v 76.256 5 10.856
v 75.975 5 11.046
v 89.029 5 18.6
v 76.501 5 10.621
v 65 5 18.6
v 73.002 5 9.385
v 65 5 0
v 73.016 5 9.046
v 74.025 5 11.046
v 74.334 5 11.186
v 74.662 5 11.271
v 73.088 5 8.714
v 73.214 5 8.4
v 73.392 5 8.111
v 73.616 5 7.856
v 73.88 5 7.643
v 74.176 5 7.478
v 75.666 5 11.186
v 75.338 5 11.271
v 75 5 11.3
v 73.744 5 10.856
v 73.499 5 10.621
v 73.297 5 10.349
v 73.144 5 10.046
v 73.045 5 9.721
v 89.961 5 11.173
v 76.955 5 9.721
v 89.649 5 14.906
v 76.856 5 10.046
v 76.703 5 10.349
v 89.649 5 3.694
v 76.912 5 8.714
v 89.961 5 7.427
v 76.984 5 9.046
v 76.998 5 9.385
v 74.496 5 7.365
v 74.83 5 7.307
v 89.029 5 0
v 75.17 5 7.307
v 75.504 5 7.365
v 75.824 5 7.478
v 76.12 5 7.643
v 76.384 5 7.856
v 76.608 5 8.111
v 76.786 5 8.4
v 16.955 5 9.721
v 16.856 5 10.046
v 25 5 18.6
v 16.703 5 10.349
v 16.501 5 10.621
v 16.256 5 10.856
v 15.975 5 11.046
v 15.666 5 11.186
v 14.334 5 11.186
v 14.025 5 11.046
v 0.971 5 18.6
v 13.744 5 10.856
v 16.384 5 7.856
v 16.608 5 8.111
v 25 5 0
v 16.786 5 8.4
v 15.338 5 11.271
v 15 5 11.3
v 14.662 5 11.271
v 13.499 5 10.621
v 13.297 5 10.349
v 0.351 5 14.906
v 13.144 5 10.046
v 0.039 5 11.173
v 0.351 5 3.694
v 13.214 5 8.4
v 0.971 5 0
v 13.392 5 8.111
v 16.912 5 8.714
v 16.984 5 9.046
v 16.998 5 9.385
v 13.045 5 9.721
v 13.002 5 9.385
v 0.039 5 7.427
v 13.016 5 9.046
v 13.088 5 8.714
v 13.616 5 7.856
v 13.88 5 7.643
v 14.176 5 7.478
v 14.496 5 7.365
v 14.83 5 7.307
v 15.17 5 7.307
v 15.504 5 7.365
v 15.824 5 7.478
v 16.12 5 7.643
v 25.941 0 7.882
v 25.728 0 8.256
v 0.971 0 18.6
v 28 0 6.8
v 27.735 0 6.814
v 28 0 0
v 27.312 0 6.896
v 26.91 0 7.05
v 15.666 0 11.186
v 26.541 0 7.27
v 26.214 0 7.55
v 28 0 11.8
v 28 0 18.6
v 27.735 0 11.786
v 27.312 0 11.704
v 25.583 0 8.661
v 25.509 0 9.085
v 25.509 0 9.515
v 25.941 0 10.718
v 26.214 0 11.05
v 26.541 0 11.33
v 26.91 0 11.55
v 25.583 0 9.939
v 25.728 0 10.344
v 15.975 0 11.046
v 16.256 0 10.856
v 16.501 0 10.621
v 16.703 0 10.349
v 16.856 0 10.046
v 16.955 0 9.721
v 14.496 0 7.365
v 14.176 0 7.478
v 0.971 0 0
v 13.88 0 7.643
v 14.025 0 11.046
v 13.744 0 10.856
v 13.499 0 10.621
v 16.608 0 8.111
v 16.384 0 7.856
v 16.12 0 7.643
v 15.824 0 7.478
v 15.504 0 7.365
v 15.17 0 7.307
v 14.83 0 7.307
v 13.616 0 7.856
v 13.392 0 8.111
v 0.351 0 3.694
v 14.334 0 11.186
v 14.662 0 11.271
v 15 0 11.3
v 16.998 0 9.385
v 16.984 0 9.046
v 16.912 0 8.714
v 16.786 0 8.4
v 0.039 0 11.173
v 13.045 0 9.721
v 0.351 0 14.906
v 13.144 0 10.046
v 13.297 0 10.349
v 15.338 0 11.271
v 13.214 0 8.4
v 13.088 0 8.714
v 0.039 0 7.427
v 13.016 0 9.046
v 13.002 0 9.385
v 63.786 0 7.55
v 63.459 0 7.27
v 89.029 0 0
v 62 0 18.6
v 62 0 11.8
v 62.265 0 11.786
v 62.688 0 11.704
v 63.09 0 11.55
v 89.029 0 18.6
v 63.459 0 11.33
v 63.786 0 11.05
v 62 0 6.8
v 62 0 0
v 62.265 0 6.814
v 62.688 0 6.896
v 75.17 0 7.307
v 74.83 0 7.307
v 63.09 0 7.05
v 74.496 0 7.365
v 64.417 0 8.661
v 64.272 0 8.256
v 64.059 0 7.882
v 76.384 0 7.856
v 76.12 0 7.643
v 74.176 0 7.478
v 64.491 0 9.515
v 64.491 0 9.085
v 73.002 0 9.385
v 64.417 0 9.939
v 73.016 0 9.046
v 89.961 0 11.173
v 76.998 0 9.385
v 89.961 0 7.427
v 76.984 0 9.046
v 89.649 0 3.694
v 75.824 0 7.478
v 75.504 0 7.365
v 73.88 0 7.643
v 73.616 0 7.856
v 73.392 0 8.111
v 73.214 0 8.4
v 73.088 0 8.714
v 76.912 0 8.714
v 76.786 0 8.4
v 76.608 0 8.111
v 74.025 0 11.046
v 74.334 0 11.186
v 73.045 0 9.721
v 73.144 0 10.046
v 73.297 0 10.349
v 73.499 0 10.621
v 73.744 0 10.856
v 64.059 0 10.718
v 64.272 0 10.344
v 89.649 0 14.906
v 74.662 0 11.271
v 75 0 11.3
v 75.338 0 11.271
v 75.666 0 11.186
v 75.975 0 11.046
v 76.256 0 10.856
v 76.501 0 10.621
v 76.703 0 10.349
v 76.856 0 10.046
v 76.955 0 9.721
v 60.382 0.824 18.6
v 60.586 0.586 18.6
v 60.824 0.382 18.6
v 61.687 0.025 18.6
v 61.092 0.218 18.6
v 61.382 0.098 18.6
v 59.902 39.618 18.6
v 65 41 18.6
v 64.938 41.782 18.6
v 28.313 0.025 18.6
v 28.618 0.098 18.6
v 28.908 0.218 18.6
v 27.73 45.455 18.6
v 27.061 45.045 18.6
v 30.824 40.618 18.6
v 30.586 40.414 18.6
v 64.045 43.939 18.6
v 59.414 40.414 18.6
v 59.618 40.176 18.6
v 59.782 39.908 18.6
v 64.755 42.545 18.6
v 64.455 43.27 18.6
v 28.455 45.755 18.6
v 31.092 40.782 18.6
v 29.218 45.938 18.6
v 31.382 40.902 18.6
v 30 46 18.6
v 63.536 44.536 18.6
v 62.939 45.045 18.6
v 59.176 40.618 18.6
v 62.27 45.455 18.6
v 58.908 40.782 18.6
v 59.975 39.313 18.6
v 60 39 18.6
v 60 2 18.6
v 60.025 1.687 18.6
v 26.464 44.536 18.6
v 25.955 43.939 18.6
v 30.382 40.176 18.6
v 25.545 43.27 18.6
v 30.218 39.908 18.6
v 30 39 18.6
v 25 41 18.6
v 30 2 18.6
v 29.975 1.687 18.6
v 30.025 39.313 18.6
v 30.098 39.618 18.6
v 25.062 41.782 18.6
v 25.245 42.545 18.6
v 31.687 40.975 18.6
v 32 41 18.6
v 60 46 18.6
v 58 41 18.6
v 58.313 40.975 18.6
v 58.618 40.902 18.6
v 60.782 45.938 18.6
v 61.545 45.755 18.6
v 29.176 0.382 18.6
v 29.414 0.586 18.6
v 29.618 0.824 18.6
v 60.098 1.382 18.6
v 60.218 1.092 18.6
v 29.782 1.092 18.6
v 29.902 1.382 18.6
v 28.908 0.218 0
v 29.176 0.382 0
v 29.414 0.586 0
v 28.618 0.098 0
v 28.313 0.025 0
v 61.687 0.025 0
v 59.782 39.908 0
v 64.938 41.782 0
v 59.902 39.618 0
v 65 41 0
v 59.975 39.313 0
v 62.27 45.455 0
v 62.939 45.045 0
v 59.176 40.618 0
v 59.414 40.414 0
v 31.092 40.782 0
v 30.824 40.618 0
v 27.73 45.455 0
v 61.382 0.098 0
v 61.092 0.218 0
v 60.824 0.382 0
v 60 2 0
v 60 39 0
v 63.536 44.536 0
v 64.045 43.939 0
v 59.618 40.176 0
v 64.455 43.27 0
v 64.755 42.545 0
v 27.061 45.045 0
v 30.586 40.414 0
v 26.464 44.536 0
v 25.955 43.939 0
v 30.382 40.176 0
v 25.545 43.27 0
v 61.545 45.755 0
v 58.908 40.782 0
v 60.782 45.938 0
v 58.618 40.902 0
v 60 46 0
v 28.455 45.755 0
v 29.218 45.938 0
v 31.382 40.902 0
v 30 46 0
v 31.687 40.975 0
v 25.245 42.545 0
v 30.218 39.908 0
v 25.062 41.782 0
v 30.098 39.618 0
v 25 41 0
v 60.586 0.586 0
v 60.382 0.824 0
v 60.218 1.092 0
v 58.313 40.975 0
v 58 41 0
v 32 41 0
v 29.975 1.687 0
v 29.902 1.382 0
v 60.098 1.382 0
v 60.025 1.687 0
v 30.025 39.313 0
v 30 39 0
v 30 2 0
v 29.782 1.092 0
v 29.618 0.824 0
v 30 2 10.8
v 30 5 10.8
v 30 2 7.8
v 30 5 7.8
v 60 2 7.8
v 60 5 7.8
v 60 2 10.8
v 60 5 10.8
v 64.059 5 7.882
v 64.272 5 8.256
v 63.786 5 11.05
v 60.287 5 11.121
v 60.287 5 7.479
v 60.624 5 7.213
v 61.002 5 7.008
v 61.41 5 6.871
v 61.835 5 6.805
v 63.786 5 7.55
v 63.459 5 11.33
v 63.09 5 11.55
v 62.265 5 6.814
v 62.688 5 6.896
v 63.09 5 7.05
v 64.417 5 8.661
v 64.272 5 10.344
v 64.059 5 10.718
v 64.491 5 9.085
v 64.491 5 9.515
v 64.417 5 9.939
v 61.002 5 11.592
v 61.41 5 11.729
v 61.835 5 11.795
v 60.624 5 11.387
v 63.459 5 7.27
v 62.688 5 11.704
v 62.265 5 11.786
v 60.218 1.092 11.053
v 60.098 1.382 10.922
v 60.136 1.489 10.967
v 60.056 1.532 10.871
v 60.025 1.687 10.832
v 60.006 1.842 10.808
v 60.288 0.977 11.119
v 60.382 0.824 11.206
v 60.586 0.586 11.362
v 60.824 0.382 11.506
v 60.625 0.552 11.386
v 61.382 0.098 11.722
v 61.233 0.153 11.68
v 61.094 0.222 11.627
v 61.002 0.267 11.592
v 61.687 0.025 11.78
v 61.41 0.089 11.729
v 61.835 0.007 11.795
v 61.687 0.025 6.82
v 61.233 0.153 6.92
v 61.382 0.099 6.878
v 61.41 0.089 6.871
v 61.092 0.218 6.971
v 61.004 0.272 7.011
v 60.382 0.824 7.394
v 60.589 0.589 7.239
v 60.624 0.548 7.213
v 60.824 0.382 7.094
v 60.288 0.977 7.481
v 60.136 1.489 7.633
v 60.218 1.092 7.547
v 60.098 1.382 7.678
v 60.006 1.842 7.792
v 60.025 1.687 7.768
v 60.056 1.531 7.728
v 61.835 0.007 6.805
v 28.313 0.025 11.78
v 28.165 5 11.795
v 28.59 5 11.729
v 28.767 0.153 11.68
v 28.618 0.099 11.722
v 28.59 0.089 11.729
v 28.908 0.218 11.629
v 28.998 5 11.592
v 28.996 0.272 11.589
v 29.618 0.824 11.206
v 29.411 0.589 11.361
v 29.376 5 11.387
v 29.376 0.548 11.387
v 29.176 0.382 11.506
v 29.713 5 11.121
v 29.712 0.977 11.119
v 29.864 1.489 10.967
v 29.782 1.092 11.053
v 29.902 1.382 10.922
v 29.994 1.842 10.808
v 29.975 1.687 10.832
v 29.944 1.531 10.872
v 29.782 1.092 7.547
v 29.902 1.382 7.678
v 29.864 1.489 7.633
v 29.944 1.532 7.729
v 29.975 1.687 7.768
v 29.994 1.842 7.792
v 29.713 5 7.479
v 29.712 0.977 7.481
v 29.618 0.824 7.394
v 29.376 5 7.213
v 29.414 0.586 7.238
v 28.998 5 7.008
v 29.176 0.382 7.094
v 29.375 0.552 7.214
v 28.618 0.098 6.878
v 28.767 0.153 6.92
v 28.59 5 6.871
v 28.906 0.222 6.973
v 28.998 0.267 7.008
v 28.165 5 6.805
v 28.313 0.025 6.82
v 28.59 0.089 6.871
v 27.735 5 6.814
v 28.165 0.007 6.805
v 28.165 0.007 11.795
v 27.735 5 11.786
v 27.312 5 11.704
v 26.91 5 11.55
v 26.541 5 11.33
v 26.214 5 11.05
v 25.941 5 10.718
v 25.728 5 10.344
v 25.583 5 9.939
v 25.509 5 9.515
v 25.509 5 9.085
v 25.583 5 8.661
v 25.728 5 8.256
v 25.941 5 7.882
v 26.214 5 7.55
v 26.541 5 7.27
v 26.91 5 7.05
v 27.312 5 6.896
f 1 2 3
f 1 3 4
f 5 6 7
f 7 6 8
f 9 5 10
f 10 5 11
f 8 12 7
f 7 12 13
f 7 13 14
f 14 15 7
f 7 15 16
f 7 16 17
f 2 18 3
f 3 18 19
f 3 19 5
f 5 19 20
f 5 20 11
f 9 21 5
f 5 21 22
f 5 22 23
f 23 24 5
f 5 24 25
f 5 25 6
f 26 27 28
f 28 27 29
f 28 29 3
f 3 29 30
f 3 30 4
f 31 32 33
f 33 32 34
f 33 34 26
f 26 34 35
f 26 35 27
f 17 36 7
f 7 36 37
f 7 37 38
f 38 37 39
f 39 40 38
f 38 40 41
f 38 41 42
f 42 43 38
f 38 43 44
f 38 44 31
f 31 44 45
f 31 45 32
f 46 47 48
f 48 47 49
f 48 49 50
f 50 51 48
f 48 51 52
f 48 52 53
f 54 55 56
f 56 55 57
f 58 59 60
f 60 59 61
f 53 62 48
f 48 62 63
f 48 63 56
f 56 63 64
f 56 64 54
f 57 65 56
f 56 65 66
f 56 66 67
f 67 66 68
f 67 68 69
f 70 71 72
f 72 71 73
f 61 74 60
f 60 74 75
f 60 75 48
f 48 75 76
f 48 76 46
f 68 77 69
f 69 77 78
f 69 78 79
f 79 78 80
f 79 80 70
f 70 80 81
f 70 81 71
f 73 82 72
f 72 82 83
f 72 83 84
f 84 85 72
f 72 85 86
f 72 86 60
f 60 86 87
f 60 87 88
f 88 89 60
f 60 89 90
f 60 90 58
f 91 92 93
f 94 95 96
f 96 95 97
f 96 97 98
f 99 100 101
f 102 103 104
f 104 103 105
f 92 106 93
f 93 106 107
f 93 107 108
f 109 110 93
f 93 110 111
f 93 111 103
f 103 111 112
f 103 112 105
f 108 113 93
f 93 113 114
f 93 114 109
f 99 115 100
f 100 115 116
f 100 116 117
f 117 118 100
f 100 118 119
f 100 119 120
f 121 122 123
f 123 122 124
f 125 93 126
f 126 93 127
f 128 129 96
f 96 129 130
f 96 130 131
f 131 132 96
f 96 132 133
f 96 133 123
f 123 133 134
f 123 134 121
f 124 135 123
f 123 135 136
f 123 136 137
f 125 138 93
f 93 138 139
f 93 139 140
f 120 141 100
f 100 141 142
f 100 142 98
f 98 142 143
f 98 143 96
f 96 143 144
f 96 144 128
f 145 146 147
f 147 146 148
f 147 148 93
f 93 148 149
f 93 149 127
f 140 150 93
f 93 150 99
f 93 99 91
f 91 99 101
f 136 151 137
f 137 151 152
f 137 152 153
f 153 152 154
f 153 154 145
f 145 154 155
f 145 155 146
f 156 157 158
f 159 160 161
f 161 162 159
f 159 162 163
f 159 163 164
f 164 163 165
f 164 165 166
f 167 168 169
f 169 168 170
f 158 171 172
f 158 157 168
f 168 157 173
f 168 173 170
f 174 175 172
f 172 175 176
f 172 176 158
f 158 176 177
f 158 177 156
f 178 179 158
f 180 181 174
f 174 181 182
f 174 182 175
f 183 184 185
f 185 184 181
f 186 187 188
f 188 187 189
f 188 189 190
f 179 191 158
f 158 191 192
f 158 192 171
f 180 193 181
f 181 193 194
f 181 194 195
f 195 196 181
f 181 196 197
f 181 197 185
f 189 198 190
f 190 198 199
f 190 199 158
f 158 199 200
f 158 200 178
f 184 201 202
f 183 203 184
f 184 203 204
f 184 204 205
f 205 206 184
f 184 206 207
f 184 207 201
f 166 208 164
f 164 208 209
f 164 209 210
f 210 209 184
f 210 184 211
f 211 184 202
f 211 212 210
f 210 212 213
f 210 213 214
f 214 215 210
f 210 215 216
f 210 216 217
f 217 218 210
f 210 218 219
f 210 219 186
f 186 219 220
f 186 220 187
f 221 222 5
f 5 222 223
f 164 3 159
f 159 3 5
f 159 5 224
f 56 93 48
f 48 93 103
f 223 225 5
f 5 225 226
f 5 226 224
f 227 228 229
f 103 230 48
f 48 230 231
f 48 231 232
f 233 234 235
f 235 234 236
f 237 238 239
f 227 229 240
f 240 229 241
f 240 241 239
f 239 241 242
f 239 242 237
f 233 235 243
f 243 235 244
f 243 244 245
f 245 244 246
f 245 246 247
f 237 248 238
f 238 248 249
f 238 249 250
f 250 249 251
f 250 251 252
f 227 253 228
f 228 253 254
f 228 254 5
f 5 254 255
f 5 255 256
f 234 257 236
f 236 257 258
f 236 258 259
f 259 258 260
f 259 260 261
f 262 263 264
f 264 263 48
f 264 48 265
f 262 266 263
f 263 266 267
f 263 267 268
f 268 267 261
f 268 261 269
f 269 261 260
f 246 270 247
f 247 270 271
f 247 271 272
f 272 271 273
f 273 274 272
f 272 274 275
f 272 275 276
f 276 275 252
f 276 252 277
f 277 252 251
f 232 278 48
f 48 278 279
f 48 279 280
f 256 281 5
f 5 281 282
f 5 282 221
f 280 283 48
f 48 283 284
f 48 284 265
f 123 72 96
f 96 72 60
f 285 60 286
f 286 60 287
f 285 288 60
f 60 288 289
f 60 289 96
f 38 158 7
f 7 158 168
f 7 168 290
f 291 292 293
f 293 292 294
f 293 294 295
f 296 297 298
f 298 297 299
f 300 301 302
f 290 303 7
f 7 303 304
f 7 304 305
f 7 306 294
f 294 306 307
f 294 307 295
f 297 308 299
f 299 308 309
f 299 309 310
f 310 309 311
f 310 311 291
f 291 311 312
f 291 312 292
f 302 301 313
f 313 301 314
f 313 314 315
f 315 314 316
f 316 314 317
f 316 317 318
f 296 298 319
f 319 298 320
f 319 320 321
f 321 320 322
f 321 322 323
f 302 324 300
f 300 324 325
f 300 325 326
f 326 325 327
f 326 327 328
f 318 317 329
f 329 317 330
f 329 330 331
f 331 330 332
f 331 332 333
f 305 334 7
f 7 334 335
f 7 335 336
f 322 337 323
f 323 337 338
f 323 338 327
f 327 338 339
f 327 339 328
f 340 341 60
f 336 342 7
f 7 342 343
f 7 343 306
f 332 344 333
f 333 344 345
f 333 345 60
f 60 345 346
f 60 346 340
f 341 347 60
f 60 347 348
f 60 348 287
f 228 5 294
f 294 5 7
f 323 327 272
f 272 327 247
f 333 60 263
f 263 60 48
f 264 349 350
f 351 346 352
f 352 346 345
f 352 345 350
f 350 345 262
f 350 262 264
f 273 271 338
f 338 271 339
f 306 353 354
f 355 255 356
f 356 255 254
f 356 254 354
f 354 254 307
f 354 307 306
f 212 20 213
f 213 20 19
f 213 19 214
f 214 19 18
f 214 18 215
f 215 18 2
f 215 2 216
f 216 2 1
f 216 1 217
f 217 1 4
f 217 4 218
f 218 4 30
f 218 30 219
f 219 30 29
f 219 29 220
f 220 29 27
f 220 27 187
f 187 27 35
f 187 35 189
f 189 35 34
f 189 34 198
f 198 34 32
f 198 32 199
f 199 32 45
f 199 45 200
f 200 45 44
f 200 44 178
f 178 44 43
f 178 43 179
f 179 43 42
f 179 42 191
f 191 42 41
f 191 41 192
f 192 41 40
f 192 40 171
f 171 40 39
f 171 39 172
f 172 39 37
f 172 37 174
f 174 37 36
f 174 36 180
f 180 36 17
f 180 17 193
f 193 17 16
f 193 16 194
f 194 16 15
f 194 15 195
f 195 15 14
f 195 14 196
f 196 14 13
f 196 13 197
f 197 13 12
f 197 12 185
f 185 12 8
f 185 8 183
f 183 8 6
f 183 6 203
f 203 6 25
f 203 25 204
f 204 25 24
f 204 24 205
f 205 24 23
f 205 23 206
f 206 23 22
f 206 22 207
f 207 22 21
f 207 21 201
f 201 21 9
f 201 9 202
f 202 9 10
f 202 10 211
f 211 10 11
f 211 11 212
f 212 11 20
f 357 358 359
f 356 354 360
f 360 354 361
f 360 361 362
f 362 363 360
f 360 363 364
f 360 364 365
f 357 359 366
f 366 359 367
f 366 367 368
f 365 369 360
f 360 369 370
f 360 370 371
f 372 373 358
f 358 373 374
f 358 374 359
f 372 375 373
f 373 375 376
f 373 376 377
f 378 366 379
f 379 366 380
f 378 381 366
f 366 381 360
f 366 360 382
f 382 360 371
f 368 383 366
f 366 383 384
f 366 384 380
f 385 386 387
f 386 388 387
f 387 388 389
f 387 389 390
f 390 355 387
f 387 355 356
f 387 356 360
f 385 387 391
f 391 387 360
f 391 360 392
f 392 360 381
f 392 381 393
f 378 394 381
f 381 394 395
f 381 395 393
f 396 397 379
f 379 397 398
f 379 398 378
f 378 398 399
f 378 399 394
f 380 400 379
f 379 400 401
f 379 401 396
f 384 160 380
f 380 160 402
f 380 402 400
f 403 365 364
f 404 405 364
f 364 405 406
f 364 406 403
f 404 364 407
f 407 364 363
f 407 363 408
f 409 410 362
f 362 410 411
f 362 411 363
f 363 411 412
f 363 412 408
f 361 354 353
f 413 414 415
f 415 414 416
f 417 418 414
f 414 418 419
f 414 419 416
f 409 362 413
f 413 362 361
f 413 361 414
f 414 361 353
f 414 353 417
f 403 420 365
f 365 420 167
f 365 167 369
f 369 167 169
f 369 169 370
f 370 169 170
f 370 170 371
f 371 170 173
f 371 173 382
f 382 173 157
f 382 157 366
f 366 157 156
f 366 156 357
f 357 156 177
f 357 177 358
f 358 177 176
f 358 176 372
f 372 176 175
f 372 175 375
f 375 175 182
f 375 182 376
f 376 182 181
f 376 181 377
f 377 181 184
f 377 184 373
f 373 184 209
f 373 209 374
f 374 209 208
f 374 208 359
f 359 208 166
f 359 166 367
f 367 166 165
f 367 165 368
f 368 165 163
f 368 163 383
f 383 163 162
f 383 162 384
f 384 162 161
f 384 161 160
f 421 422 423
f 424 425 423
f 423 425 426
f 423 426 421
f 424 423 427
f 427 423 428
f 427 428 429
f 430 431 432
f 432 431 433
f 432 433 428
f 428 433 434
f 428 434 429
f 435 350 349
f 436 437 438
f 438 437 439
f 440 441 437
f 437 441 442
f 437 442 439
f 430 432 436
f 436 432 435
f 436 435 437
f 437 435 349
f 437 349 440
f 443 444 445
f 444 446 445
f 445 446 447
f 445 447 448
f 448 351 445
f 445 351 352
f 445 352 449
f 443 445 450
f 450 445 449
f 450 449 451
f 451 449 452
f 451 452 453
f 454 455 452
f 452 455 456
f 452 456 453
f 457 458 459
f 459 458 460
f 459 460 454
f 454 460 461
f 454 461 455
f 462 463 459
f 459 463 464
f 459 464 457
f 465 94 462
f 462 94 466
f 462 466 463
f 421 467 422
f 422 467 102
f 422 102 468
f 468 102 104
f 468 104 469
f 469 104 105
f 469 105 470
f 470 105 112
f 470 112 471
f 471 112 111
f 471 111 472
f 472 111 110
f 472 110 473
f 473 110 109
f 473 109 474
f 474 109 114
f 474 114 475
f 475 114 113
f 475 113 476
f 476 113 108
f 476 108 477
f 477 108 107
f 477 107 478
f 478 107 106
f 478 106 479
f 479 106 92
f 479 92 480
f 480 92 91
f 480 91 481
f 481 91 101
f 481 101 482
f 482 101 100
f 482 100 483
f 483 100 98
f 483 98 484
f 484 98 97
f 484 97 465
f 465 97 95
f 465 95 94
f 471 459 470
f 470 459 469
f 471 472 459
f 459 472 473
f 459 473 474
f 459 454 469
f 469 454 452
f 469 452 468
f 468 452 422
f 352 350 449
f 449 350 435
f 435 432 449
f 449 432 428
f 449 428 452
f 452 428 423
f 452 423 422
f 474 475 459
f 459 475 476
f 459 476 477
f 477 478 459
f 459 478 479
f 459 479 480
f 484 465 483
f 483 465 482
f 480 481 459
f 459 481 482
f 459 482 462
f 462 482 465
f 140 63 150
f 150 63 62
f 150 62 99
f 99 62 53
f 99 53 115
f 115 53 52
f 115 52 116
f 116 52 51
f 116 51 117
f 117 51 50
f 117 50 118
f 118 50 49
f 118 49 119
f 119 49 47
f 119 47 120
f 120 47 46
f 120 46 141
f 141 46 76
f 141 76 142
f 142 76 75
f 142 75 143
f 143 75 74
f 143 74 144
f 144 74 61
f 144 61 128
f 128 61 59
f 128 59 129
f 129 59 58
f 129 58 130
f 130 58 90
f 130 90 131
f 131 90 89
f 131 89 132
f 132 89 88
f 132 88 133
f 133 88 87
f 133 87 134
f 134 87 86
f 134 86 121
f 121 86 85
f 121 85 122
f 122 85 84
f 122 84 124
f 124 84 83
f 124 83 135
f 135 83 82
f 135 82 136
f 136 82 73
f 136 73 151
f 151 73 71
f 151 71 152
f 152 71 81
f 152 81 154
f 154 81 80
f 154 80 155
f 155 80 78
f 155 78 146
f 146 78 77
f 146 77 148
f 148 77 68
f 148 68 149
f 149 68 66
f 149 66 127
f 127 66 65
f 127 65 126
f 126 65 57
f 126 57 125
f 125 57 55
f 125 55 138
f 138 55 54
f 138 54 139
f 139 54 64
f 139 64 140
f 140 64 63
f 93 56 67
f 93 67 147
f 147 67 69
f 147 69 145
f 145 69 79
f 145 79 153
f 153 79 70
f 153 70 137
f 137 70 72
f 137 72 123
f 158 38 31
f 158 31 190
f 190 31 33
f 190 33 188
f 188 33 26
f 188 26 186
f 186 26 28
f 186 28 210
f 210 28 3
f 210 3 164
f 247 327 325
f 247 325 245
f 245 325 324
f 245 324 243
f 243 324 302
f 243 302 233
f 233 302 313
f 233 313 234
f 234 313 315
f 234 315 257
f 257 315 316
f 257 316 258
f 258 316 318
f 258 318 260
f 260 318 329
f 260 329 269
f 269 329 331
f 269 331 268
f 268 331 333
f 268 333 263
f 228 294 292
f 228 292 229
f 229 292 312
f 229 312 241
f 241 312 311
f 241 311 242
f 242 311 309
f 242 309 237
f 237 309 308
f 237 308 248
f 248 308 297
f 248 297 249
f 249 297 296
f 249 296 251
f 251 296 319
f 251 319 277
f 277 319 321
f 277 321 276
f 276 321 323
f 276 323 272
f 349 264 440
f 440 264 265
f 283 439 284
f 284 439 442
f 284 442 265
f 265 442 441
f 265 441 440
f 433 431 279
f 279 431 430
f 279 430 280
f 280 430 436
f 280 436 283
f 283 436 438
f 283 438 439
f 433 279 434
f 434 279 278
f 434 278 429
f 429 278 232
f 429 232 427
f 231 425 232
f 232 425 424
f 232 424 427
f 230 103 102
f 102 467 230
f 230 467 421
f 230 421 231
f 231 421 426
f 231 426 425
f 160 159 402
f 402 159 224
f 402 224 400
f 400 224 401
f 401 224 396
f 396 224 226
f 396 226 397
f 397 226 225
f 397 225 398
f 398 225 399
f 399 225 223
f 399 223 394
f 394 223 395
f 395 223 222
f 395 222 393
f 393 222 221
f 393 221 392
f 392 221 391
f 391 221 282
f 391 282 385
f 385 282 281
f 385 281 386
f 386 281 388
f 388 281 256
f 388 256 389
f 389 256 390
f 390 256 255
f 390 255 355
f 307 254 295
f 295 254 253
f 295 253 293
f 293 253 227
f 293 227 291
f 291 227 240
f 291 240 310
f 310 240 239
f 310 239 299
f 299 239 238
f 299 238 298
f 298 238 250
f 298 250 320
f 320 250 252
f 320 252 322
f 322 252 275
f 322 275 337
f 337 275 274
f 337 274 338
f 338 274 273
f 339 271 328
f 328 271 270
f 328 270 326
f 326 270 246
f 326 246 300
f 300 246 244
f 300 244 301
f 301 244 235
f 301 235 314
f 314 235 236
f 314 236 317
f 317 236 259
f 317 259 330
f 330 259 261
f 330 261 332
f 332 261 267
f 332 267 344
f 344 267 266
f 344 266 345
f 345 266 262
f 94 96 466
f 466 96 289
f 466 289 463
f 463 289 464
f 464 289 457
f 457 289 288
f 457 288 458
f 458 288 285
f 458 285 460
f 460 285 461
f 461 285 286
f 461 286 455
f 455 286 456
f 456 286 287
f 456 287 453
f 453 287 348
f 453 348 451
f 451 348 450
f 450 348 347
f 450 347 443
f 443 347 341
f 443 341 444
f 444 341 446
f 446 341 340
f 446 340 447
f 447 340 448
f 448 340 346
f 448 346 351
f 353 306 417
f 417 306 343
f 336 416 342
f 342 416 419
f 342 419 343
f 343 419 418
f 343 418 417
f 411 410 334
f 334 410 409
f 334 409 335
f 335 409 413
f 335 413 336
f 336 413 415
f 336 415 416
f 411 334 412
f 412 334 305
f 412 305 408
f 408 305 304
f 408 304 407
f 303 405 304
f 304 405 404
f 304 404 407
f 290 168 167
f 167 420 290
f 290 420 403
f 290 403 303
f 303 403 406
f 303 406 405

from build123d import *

# Parameters (mm, degrees)
BOSS_EXTRUDE1_DEPTH = 18.6
SKETCH2_R           = 2
SKETCH2_R_2         = 2.5
CUT_EXTRUDE1_DEPTH  = 10
SKETCH3_R           = 50
SKETCH3_R_2         = 45
CUT_EXTRUDE2_DEPTH  = 60
FILLET1_R           = 5
FILLET2_R           = 5
FILLET3_R           = 2
FILLET4_R           = 2


with BuildPart() as part:
    # Sketch1 → Boss-Extrude1 (new body)
    with BuildSketch(Plane.XY):
        Polygon((90, 5), (90, 0), (60, 0), (60, 41), (30, 41), (30, 0), (0, 0), (0, 5), (25, 5), (25, 46), (65, 46), (65, 5), align=None)
    extrude(amount=BOSS_EXTRUDE1_DEPTH)

    # Sketch2 → Cut-Extrude1 (cut)
    with BuildSketch(Plane(origin=(0, 5, 0), x_dir=(1, 0, 0), z_dir=(0, 1, 0))):
        with Locations((75, -9.3)):
            Circle(SKETCH2_R)
        with Locations((15, -9.3)):
            Circle(SKETCH2_R)
        with Locations((28, -9.3)):
            Circle(SKETCH2_R_2)
        with Locations((62, -9.3)):
            Circle(SKETCH2_R_2)
    extrude(amount=-CUT_EXTRUDE1_DEPTH, mode=Mode.SUBTRACT)

    # Sketch3 → Cut-Extrude2 (cut)
    with BuildSketch(Plane(origin=(0, 46, 0), x_dir=(1, 0, 0), z_dir=(0, 1, 0))):
        with Locations((45, -9.3)):
            Circle(SKETCH3_R)
        with Locations((45, -9.3)):
            Circle(SKETCH3_R_2, mode=Mode.SUBTRACT)
    extrude(amount=-CUT_EXTRUDE2_DEPTH, mode=Mode.SUBTRACT)

    # Fillet1
    fillet1_edges = [part.edges().sort_by_distance(p)[0] for p in [
        (25, 46, 9.3),
    ]]
    fillet(fillet1_edges, radius=FILLET1_R)

    # Fillet2
    fillet2_edges = [part.edges().sort_by_distance(p)[0] for p in [
        (65, 46, 9.3),
    ]]
    fillet(fillet2_edges, radius=FILLET2_R)

    # Fillet3
    fillet3_edges = [part.edges().sort_by_distance(p)[0] for p in [
        (60, 0, 14.7),
        (60, 41, 9.3),
        (30, 41, 9.3),
        (30, 0, 14.7),
    ]]
    fillet(fillet3_edges, radius=FILLET3_R)

    # Fillet4
    fillet4_edges = [part.edges().sort_by_distance(p)[0] for p in [
        (60, 0, 3.9),
        (30, 0, 3.9),
    ]]
    fillet(fillet4_edges, radius=FILLET4_R)


solid = part.part
